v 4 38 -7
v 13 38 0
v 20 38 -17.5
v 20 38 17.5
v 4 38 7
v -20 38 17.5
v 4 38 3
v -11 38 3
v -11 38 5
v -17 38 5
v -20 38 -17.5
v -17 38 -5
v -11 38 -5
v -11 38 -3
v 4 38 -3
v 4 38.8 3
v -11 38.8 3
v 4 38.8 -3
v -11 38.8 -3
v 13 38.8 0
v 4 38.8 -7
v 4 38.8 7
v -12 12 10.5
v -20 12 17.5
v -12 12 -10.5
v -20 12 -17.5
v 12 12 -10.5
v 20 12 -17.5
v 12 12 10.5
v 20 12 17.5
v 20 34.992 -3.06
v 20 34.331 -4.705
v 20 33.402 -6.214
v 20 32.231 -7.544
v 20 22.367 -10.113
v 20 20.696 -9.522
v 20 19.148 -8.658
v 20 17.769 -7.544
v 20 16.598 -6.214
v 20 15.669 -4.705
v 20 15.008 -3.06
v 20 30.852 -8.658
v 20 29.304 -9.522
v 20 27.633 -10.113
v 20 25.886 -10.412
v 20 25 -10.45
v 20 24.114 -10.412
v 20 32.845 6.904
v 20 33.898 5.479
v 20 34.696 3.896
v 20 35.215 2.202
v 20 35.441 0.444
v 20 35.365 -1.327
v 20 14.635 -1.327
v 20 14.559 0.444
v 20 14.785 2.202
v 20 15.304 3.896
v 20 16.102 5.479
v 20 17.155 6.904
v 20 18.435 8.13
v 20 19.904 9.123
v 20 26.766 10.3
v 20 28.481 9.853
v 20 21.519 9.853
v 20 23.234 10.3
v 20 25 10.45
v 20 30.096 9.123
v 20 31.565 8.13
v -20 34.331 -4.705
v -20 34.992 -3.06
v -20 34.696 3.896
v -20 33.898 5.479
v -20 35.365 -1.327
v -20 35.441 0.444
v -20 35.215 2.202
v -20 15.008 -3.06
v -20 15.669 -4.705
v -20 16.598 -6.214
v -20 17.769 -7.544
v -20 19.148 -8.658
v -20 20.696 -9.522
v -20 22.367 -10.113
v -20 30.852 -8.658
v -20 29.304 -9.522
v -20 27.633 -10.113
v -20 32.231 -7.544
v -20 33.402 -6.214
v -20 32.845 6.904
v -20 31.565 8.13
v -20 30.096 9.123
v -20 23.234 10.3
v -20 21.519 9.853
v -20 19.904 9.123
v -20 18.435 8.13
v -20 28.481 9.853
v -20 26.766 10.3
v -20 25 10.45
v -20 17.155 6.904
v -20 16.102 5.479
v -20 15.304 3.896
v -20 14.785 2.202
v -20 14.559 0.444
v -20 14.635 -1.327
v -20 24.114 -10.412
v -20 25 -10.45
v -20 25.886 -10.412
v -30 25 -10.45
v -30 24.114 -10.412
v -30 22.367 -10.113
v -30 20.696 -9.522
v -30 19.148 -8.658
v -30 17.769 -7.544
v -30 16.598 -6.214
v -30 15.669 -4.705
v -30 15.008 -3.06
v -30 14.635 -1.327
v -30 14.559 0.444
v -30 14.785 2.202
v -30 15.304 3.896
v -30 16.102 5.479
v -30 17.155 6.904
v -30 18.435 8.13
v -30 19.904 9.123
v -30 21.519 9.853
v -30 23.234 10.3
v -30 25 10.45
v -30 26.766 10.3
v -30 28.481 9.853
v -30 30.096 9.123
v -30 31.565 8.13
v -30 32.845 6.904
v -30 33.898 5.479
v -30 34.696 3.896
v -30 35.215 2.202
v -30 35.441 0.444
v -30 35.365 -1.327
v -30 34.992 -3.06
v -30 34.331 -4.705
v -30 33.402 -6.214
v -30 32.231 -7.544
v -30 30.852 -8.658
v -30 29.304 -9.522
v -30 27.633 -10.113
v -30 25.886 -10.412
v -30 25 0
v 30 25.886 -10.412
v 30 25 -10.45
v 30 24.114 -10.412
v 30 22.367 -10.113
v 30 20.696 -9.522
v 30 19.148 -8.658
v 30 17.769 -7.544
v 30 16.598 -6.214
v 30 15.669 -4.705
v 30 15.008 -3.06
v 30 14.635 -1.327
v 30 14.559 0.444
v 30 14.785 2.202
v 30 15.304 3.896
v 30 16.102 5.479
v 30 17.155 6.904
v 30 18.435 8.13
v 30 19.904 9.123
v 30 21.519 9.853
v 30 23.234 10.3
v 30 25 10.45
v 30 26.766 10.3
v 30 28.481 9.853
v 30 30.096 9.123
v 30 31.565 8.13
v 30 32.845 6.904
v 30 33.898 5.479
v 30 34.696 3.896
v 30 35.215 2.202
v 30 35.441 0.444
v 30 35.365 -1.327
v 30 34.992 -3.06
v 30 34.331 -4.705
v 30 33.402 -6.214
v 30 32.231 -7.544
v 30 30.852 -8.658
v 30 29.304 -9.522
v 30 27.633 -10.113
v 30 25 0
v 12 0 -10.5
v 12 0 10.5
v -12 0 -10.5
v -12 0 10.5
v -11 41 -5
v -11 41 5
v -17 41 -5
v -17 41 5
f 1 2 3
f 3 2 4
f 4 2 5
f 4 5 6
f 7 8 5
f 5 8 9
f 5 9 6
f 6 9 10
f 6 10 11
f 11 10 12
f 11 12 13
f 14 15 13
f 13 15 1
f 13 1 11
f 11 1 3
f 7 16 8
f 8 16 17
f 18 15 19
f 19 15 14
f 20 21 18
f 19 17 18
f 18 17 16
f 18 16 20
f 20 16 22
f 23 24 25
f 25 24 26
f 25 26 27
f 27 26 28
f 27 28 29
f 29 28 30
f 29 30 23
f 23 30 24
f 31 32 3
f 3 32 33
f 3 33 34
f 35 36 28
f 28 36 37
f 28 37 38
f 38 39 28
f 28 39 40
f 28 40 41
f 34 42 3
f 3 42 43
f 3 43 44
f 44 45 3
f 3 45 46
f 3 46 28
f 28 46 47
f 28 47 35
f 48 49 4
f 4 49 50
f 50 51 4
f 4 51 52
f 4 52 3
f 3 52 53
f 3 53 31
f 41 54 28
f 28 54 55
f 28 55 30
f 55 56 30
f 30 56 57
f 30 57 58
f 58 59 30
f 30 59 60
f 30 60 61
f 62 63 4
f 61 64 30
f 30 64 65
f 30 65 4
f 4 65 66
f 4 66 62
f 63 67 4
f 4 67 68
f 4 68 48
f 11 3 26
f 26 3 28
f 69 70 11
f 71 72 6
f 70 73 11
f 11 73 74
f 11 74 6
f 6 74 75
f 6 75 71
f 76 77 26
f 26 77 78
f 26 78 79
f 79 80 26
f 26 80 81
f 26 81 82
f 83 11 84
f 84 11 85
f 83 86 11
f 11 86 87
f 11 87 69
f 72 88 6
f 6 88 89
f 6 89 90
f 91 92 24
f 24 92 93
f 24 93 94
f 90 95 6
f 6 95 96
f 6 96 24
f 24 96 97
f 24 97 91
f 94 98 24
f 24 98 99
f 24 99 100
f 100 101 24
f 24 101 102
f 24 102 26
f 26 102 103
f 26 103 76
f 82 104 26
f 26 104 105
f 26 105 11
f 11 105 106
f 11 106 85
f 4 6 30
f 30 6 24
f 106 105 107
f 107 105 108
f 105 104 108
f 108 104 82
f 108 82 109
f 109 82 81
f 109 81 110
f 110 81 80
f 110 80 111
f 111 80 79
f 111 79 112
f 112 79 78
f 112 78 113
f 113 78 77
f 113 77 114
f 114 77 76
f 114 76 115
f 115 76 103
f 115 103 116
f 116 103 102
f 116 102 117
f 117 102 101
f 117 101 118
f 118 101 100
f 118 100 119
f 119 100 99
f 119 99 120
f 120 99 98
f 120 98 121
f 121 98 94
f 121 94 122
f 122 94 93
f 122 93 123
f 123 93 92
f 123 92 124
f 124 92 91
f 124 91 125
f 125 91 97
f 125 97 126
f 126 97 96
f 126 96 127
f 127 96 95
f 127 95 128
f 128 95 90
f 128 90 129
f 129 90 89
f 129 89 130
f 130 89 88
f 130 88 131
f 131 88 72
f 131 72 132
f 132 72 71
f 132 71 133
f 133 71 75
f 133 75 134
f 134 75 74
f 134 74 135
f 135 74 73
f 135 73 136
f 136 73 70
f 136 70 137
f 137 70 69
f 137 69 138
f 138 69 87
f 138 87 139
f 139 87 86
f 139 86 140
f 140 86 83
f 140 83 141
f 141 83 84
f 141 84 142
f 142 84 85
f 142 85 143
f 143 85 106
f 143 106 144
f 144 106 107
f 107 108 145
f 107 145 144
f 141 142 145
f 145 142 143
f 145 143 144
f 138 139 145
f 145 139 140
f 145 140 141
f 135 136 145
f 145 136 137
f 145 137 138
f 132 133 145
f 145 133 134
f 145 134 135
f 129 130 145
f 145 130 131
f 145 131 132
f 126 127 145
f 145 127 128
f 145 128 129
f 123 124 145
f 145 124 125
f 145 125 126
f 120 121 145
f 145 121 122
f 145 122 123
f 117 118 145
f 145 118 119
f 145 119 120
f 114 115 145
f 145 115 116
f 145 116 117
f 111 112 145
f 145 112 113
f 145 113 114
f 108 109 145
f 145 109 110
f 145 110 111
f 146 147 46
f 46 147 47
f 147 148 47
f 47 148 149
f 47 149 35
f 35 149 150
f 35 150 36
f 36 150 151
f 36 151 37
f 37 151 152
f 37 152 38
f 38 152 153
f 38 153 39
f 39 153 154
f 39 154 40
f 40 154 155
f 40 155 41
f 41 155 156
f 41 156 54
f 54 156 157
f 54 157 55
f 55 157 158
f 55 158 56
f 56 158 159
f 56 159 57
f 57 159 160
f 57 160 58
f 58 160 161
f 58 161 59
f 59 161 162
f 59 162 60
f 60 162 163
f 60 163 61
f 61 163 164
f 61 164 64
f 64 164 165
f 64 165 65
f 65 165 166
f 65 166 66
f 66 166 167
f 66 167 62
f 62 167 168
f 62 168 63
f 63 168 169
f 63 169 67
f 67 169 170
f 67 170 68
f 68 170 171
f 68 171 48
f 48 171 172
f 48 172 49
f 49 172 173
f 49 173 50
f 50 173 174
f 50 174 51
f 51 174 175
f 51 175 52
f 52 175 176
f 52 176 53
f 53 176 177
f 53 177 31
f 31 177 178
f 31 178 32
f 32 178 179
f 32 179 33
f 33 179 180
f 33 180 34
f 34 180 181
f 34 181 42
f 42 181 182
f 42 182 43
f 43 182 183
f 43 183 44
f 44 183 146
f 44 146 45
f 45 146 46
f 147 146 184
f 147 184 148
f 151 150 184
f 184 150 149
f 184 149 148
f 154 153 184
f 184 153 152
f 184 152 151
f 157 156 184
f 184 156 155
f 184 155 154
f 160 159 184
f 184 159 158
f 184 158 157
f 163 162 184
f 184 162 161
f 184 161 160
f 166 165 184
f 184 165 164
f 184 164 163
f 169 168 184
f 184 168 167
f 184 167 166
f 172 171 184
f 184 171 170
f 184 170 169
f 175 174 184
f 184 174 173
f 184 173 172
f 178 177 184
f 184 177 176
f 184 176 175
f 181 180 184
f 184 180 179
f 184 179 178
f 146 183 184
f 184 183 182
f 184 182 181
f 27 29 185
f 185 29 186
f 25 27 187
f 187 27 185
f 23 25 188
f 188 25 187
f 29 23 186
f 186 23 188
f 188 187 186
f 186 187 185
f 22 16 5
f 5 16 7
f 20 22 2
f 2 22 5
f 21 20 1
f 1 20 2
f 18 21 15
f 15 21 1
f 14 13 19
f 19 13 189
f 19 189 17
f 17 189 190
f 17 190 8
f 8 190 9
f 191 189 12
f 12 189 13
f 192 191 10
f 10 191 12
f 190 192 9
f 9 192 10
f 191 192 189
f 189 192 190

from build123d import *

# Parameters (mm, degrees)
BODY_START         = 12
SKETCH1_W          = 40
SKETCH1_H          = 35
BODY_DEPTH         = 26
PORT_IN_G12_START  = -30
SKETCH2_R          = 10.45
PORT_IN_G12_DEPTH  = 10
PORT_OUT_G12_START = 20
SKETCH3_R          = 10.45
PORT_OUT_G12_DEPTH = 10
SKETCH4_W          = 24
SKETCH4_H          = 21
FEET_DEPTH         = 12
FLOW_ARROW_START   = 38
FLOW_ARROW_DEPTH   = 0.8
WIRE_EXIT_START    = 38
SKETCH6_W          = 6
SKETCH6_H          = 10
WIRE_EXIT_DEPTH    = 3


with BuildPart() as part:
    # Sketch1 → Body (new body)
    with BuildSketch(Plane(origin=(0, 0, 0), x_dir=(1, 0, 0), z_dir=(0, 1, 0)).offset(BODY_START)):
        Rectangle(SKETCH1_W, SKETCH1_H)
    extrude(amount=BODY_DEPTH)

    # Sketch2 → Port_In_G12 (add)
    with BuildSketch(Plane(origin=(0, 0, 0), x_dir=(0, 0, -1), z_dir=(1, 0, 0)).offset(PORT_IN_G12_START)):
        with Locations((0, 25)):
            Circle(SKETCH2_R)
    extrude(amount=PORT_IN_G12_DEPTH)

    # Sketch3 → Port_Out_G12 (add)
    with BuildSketch(Plane(origin=(0, 0, 0), x_dir=(0, 0, -1), z_dir=(1, 0, 0)).offset(PORT_OUT_G12_START)):
        with Locations((0, 25)):
            Circle(SKETCH3_R)
    extrude(amount=PORT_OUT_G12_DEPTH)

    # Sketch4 → Feet (add)
    with BuildSketch(Plane(origin=(0, 0, 0), x_dir=(1, 0, 0), z_dir=(0, 1, 0))):
        Rectangle(SKETCH4_W, SKETCH4_H)
    extrude(amount=FEET_DEPTH)

    # Sketch5 → Flow_Arrow (add)
    with BuildSketch(Plane(origin=(0, 0, 0), x_dir=(1, 0, 0), z_dir=(0, 1, 0)).offset(FLOW_ARROW_START)):
        Polygon((-12, 3), (4, 3), (4, 7), (13, 0), (4, -7), (4, -3), (-12, -3), align=None)
    extrude(amount=FLOW_ARROW_DEPTH)

    # Sketch6 → Wire_Exit (add)
    with BuildSketch(Plane(origin=(0, 0, 0), x_dir=(1, 0, 0), z_dir=(0, 1, 0)).offset(WIRE_EXIT_START)):
        with Locations((-14, 0)):
            Rectangle(SKETCH6_W, SKETCH6_H)
    extrude(amount=WIRE_EXIT_DEPTH)


solid = part.part
